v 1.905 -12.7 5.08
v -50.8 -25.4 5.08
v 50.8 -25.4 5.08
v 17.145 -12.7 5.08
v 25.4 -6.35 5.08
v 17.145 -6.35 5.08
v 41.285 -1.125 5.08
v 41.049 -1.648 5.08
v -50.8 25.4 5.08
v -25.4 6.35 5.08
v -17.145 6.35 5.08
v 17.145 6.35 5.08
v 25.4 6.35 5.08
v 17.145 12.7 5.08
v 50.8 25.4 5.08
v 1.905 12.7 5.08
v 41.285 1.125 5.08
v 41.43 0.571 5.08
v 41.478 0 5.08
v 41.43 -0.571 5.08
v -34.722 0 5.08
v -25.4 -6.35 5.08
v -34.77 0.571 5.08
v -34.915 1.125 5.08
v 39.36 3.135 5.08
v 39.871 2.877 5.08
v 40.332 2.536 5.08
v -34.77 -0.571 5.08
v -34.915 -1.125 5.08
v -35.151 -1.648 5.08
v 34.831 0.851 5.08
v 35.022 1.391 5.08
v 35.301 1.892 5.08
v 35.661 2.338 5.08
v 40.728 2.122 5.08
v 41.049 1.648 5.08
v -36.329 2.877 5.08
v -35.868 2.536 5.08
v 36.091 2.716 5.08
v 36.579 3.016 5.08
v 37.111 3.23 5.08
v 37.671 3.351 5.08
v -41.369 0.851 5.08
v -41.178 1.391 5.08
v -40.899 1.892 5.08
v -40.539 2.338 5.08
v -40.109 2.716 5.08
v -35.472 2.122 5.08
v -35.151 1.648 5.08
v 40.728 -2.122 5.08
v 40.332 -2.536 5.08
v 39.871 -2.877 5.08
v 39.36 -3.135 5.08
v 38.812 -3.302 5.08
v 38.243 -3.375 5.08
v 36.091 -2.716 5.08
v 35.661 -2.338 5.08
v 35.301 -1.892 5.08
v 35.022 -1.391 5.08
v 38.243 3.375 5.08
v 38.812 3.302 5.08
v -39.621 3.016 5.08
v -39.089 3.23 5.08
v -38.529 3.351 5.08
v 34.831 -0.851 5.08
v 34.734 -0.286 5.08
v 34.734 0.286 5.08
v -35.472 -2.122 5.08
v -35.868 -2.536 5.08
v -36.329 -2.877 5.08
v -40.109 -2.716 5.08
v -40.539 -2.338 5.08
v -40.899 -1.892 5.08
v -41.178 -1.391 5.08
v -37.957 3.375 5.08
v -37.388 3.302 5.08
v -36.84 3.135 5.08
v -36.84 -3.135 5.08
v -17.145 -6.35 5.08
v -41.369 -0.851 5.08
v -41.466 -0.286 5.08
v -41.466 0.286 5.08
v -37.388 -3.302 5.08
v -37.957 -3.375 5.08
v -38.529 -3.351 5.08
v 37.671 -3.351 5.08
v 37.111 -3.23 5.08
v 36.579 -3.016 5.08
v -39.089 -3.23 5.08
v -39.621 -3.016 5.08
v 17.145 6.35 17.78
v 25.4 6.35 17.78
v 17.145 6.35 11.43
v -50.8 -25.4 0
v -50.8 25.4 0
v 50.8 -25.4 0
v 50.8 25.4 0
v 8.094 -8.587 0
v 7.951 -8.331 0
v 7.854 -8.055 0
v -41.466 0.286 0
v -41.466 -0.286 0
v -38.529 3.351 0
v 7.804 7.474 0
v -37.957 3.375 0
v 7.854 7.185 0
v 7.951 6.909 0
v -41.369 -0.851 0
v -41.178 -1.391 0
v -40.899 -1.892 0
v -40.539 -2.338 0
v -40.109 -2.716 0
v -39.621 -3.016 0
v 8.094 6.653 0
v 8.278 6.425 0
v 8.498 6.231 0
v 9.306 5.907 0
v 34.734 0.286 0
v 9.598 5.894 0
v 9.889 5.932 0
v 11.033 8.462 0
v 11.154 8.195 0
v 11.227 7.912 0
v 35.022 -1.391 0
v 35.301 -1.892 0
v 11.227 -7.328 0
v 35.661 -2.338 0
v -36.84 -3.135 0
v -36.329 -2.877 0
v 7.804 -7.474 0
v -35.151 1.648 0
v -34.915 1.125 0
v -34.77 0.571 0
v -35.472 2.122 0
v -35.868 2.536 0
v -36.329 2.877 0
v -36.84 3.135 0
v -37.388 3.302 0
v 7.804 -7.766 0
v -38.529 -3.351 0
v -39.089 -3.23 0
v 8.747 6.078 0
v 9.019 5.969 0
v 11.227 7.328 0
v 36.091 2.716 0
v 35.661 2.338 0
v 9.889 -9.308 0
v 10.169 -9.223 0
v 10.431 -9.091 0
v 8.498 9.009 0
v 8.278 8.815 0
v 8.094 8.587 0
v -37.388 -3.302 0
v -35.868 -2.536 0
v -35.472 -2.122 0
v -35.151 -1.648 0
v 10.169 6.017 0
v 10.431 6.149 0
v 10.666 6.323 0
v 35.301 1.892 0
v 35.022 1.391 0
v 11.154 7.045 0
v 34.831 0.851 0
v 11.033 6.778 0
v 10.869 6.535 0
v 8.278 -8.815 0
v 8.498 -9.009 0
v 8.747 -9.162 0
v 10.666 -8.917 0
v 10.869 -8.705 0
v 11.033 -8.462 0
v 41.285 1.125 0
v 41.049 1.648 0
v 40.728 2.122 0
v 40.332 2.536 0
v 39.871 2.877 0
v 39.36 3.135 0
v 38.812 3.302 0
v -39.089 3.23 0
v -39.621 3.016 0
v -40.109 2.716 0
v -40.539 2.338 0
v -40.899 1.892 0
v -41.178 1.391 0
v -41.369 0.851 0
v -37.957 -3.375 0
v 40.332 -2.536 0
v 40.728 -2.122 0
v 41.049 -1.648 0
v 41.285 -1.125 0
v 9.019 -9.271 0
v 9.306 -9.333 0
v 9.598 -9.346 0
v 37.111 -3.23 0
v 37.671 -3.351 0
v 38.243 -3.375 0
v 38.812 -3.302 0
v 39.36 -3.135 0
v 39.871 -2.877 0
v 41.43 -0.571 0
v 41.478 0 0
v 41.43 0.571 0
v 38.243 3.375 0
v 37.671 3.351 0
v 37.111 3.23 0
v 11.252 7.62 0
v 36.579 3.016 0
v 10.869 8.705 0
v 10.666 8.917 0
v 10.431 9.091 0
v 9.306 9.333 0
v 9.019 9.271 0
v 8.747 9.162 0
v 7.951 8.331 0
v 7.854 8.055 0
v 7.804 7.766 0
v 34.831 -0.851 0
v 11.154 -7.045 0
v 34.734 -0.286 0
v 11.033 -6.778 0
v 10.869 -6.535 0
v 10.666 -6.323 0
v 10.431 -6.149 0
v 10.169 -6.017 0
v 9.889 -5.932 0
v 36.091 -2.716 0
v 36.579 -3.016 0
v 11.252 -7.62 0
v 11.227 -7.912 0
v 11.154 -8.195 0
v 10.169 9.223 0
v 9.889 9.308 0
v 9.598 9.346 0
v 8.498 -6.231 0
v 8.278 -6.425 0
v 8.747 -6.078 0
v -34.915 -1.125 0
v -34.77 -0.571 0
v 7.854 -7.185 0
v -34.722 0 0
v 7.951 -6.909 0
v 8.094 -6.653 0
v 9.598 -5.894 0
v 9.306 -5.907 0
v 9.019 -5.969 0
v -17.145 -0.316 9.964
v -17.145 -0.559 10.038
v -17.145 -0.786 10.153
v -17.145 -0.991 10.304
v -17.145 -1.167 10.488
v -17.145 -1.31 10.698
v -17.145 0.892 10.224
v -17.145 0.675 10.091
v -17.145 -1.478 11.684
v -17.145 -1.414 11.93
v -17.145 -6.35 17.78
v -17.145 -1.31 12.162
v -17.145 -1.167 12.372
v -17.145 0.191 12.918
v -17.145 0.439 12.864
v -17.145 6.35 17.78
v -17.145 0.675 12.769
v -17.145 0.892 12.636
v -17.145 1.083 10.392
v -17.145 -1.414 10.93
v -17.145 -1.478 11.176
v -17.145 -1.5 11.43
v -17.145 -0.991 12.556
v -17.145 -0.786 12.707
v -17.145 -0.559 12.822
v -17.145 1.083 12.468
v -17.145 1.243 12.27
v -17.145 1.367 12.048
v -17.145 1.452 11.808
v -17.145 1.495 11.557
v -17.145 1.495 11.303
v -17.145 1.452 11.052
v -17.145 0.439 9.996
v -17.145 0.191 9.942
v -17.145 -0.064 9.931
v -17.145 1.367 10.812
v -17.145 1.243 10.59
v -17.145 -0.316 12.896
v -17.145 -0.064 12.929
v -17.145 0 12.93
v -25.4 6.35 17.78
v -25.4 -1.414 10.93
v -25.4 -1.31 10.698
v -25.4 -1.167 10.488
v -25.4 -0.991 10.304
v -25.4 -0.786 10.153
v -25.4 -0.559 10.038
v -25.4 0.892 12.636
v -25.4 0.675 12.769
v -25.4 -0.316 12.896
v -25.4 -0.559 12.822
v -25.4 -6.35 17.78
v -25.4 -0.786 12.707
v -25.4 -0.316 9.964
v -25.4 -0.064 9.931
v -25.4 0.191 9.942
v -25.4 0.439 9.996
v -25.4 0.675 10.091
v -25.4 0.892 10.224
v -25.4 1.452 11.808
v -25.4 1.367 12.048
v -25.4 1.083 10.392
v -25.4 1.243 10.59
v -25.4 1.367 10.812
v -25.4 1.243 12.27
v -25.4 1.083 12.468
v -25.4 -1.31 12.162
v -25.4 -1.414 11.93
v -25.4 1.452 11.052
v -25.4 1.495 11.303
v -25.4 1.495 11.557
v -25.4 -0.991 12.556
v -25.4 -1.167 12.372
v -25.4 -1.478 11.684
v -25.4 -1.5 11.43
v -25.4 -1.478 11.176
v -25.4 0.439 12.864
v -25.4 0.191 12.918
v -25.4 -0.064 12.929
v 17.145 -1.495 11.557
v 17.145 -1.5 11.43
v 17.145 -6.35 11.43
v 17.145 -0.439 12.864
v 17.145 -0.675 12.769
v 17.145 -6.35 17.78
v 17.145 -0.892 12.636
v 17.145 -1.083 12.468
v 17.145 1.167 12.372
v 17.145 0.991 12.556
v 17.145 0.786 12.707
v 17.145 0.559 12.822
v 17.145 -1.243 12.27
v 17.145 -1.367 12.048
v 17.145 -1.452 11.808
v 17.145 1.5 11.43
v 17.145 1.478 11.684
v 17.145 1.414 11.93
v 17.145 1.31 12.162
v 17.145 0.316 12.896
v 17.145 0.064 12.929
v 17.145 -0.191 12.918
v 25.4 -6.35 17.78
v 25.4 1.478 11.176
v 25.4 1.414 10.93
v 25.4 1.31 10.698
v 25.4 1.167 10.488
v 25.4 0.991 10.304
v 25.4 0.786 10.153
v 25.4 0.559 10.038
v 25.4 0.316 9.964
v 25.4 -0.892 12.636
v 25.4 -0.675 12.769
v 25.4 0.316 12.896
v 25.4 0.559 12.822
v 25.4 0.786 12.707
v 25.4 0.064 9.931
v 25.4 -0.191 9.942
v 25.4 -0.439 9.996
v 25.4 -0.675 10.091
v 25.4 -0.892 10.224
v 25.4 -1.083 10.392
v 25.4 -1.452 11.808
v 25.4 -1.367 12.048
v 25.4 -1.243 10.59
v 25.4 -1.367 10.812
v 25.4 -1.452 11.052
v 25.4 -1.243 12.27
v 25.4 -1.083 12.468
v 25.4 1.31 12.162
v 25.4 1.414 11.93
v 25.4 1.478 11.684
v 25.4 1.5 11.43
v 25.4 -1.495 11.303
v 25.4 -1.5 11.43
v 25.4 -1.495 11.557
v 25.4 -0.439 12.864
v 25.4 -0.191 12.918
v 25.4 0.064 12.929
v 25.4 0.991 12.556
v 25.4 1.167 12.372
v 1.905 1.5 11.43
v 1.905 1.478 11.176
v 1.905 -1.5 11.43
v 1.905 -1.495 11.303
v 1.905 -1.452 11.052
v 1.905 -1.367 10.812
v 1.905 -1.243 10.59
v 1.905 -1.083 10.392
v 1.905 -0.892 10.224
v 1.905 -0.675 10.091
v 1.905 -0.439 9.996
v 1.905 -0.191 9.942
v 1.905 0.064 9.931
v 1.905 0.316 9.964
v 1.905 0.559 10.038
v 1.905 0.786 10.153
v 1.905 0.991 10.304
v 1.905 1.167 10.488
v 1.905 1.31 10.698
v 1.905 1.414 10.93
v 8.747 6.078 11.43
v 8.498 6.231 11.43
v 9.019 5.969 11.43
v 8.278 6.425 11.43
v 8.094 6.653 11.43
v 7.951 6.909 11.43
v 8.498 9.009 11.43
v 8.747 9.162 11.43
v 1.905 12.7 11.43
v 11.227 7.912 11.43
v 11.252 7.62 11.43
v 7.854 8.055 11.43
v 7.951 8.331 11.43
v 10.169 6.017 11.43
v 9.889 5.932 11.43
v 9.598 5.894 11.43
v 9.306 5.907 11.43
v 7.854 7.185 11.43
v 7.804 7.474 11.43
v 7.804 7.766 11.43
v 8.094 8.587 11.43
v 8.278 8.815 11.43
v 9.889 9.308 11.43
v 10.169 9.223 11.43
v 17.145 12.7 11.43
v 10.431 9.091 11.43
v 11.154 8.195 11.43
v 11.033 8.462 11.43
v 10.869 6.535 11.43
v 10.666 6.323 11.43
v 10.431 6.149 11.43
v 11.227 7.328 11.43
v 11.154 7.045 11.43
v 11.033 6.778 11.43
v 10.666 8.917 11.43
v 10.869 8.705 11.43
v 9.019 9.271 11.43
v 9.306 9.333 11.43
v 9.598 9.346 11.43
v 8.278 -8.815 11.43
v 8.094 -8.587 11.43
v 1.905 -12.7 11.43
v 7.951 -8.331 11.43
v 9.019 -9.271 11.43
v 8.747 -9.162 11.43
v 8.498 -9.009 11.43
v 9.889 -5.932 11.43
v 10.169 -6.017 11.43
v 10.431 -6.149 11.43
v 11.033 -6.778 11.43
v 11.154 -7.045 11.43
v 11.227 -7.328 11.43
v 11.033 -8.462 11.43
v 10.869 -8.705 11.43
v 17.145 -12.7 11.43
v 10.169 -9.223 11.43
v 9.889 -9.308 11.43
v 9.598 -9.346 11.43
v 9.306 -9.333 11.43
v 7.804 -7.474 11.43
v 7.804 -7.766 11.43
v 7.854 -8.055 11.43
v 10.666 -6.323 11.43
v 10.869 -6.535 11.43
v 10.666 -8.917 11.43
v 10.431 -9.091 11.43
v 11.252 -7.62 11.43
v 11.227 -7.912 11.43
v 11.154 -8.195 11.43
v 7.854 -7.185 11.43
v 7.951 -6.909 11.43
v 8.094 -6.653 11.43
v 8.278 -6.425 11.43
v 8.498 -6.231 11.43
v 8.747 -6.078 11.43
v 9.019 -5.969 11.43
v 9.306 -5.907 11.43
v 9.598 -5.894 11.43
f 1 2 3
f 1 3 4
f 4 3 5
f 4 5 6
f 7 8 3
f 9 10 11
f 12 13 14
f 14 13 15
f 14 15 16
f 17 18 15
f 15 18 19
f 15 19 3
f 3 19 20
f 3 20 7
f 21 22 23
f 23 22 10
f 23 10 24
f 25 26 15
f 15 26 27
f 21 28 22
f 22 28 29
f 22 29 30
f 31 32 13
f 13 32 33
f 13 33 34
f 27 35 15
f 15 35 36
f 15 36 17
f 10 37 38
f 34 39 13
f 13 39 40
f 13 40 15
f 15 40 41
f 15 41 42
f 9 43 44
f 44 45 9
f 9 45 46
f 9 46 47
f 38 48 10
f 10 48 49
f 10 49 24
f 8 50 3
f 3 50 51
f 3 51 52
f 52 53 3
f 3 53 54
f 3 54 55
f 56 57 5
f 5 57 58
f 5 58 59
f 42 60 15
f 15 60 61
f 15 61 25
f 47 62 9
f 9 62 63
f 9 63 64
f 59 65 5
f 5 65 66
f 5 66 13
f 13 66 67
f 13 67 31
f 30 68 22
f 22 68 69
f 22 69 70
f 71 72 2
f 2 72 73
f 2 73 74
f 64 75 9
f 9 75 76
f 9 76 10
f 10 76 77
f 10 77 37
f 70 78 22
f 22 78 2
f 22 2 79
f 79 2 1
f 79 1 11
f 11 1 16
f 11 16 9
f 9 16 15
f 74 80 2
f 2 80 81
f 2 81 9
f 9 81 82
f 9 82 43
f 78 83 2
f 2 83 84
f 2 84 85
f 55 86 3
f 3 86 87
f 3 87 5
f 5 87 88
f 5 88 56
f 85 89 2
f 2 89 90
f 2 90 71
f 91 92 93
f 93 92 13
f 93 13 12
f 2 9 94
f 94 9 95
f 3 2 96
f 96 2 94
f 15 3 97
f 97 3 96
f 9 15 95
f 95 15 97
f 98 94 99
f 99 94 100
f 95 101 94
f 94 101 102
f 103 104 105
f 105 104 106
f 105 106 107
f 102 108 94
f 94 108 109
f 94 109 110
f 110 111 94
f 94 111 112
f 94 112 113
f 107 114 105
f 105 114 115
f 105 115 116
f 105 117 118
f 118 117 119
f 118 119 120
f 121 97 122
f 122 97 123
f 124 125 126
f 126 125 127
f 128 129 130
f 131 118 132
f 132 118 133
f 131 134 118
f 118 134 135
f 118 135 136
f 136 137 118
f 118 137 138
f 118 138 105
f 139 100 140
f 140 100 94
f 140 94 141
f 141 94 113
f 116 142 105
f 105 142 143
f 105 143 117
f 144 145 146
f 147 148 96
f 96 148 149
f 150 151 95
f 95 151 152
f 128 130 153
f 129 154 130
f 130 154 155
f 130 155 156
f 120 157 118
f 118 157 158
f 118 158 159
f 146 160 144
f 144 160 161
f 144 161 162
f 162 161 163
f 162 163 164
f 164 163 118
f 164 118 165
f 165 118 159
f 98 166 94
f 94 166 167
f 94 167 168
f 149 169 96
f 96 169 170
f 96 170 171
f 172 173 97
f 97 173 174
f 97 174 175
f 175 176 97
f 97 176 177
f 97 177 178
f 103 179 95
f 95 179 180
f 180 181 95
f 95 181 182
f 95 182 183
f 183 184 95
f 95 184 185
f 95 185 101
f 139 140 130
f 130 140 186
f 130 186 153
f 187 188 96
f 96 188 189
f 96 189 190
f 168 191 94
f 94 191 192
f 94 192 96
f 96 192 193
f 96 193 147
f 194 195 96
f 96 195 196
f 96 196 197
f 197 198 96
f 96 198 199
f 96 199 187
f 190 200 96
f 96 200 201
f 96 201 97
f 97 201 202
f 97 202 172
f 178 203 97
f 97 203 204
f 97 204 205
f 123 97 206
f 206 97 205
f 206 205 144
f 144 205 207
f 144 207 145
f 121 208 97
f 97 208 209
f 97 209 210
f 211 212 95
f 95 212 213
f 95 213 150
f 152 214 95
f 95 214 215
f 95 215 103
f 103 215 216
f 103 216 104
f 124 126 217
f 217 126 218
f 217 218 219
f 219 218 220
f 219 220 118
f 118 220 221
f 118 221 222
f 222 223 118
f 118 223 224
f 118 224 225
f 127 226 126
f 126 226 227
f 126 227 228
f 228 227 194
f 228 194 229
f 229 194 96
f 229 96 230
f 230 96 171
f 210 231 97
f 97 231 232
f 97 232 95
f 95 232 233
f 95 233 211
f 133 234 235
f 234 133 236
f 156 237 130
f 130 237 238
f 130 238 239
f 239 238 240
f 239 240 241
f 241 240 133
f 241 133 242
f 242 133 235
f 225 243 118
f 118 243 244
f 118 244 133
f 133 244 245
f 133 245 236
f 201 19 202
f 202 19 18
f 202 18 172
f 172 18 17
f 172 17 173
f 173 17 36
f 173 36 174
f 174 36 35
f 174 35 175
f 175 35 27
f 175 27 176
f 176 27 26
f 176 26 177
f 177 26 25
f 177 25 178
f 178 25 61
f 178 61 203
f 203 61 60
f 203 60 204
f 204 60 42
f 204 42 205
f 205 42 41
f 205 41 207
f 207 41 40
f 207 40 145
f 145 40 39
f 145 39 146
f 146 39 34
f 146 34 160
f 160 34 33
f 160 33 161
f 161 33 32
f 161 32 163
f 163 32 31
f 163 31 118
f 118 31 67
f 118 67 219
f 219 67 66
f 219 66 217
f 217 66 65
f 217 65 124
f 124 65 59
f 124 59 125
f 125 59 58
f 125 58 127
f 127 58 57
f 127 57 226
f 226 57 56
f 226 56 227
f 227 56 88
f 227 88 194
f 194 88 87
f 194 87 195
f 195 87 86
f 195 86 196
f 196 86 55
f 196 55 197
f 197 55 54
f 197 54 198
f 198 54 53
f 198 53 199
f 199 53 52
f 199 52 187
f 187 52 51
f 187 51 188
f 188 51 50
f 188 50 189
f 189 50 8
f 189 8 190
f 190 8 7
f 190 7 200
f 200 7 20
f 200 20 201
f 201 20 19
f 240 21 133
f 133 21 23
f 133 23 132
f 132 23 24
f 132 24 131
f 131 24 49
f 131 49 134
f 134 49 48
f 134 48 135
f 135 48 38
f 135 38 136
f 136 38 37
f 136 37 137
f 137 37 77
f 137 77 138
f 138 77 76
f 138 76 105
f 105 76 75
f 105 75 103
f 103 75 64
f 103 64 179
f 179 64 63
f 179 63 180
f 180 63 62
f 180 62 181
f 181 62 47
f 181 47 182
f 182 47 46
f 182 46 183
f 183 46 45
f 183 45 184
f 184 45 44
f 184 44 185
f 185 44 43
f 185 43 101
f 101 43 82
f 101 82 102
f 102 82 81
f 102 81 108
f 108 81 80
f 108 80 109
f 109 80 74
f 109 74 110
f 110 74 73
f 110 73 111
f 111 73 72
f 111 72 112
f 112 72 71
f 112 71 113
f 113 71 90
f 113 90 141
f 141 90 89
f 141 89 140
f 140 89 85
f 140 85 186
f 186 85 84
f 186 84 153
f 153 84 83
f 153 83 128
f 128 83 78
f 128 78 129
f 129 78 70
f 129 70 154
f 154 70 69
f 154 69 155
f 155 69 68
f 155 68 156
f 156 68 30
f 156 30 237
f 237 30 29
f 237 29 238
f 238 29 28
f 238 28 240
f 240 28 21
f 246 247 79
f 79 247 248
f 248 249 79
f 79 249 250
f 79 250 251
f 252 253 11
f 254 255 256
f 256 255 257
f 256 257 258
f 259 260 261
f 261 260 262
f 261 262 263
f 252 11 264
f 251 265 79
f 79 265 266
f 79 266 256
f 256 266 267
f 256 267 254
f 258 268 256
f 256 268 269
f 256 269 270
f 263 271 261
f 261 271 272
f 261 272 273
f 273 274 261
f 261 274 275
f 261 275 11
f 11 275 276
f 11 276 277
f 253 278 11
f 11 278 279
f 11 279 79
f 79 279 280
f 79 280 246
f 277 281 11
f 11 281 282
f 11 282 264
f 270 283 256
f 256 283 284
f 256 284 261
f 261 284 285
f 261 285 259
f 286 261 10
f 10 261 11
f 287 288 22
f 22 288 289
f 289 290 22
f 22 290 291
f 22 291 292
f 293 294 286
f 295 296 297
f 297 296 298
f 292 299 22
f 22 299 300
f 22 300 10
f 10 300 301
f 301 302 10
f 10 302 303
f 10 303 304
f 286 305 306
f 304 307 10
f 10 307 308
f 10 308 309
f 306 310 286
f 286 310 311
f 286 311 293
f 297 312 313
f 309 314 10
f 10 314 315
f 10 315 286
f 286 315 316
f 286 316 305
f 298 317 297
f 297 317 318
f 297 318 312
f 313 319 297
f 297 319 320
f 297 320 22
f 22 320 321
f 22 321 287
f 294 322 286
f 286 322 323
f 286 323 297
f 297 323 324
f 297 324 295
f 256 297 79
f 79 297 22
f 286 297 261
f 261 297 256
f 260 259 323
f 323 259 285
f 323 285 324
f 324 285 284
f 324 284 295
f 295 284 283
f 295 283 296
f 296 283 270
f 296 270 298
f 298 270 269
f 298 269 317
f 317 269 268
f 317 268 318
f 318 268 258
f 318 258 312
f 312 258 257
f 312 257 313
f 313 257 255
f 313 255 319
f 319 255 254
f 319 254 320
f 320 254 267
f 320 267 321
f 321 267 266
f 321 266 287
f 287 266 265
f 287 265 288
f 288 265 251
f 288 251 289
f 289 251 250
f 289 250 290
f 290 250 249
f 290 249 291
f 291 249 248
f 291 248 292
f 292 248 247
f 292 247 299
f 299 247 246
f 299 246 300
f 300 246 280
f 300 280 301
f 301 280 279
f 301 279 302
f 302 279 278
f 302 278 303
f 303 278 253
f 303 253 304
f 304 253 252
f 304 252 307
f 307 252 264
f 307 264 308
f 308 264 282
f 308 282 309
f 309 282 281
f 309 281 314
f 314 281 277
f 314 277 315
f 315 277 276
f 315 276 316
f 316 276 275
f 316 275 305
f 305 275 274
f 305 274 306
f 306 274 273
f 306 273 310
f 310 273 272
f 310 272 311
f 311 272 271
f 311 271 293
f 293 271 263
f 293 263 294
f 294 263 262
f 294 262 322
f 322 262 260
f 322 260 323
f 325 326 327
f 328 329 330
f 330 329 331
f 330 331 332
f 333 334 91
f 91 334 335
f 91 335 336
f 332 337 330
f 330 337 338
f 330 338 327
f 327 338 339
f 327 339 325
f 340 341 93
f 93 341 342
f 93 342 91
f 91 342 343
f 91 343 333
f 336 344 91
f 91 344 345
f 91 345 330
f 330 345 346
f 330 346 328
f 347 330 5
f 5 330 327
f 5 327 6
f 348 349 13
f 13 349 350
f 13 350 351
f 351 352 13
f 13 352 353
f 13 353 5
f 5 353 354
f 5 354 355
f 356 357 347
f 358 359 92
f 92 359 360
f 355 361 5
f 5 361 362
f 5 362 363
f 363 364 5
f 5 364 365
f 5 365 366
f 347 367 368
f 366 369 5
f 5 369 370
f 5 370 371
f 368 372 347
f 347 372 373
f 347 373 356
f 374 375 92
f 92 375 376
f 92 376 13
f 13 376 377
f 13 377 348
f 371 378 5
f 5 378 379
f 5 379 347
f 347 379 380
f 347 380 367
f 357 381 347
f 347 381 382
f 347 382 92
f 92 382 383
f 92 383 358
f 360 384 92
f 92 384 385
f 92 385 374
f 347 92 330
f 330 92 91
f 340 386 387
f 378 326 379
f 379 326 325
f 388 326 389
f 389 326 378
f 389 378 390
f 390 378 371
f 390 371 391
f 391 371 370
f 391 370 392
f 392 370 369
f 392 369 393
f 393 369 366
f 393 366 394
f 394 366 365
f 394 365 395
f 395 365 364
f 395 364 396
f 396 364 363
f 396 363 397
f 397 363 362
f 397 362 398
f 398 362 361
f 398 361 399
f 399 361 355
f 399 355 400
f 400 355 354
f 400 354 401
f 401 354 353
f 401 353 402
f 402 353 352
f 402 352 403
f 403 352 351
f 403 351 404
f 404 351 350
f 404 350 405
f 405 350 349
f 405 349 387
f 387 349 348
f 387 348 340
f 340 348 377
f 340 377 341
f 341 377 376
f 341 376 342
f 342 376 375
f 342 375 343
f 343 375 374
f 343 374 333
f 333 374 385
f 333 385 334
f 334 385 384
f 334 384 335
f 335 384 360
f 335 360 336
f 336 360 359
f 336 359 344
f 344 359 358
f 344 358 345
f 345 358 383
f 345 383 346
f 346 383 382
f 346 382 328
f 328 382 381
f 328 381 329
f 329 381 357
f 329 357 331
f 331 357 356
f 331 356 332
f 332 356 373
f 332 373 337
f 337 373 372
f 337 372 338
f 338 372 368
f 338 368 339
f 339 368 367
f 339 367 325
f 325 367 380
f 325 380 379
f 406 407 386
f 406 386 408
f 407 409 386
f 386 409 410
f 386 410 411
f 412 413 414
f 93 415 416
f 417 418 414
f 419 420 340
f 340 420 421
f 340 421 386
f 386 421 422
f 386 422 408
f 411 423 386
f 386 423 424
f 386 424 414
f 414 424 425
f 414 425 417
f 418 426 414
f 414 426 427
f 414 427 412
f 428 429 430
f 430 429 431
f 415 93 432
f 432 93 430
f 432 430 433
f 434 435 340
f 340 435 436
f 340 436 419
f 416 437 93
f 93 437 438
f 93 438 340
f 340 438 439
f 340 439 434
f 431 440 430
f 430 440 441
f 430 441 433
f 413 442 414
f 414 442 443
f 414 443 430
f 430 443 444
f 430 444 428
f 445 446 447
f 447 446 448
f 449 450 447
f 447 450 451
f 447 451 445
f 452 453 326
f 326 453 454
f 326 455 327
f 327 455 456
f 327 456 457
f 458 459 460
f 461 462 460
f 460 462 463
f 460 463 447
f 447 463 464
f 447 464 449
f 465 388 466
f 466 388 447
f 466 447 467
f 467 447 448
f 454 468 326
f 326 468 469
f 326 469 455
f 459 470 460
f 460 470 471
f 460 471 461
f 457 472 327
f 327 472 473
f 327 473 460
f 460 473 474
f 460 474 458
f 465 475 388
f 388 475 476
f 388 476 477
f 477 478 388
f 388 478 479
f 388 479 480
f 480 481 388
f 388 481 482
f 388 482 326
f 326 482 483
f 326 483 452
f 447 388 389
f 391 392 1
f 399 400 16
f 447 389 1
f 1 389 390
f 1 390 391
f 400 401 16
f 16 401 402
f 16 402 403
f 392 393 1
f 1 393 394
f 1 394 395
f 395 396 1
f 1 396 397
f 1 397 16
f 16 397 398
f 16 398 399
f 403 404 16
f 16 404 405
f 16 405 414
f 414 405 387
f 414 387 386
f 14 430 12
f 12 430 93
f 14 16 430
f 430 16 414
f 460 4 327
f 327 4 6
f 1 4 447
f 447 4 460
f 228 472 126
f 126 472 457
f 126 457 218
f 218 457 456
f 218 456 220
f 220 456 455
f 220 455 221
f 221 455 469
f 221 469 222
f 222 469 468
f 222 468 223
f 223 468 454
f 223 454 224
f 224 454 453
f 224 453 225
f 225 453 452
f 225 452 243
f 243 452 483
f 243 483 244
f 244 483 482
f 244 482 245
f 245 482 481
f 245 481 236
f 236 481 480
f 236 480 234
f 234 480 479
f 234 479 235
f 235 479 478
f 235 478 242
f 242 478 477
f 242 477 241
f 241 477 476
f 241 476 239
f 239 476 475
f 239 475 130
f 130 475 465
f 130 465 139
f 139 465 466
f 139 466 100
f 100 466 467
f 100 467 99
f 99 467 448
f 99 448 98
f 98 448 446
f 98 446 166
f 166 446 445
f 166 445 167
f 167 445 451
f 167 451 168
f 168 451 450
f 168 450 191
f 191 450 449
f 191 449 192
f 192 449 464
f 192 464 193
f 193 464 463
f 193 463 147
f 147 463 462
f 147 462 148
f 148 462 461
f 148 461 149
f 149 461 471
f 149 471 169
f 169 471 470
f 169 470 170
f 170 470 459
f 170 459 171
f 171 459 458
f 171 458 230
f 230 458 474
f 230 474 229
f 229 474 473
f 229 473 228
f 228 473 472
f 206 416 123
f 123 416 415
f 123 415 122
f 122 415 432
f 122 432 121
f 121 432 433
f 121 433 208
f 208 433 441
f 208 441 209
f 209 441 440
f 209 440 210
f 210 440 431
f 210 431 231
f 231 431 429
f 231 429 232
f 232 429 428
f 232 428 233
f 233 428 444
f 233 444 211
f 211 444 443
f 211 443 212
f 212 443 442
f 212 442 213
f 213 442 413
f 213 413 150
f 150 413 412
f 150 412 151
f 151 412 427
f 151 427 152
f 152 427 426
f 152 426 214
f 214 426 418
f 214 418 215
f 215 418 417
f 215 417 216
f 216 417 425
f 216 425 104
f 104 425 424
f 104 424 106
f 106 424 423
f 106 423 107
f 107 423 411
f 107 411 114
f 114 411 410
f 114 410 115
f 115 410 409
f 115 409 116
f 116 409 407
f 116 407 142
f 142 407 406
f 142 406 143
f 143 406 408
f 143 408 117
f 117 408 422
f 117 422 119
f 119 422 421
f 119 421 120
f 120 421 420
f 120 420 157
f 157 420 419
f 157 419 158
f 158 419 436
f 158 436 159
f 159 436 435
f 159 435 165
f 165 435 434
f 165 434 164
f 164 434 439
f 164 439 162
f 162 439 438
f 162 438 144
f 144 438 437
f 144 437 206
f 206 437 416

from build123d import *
from build123d.topology import SkipClean

# Parameters (mm, degrees)
SKETCH1_W                   = 101.6
SKETCH1_H                   = 50.8
BOSS_EXTRUDE1_DEPTH         = 5.08
H_0_266_DIAMETER_HOLE1_D    = 6.7564
SKETCH5_W                   = 8.255
SKETCH5_H                   = 12.7
BOSS_EXTRUDE2_DEPTH         = 12.7
SKETCH6_R                   = 1.5
CUT_EXTRUDE1_DEPTH          = 12.7
BOSS_EXTRUDE3_DEPTH         = 15.24
SKETCH9_W                   = 15.24
SKETCH9_H                   = 6.35
BOSS_EXTRUDE4_DEPTH         = 6.35
F_29_0_136_DIAMETER_HOLE1_D = 3.4544


with BuildPart() as part:
    # Sketch1 → Boss-Extrude1 (new body)
    with BuildSketch(Plane.XY):
        Rectangle(SKETCH1_W, SKETCH1_H)
    extrude(amount=BOSS_EXTRUDE1_DEPTH)

    # H _0.266_ Diameter Hole1 (through all)
    with Locations(Plane.XY.offset(5.08)):
        with Locations((38.1, 0), (-38.1, 0)):
            Hole(H_0_266_DIAMETER_HOLE1_D / 2)

    # Sketch5 → Boss-Extrude2 (add)
    with BuildSketch(Plane.XY.offset(5.08)):
        with Locations((-21.2725, 0)):
            Rectangle(SKETCH5_W, SKETCH5_H)
    boss_extrude2 = extrude(amount=BOSS_EXTRUDE2_DEPTH)

    # Sketch6 → Cut-Extrude1 (cut)
    with BuildSketch(Plane.ZY.offset(25.4)):
        with Locations((11.43, 0)):
            Circle(SKETCH6_R)
    cut_extrude1 = extrude(amount=-CUT_EXTRUDE1_DEPTH, mode=Mode.SUBTRACT)

    # Mirror1: Boss-Extrude2, Cut-Extrude1 across plane
    add(boss_extrude2.mirror(Plane(origin=(0, 0, 0), x_dir=(0, 0, 1), z_dir=(1, 0, 0))))
    add(cut_extrude1.mirror(Plane(origin=(0, 0, 0), x_dir=(0, 0, 1), z_dir=(1, 0, 0))), mode=Mode.SUBTRACT)

    # Sketch8 → Boss-Extrude3 (add)
    with SkipClean():  # the faces are left unmerged after this step: merging them gives an invalid solid
        with BuildSketch(Plane.ZY.offset(-17.145)):
            with BuildLine():
                Line((11.43, 6.35), (5.08, 6.35))
                Line((5.08, 6.35), (5.08, -6.35))
                Line((5.08, -6.35), (11.43, -6.35))
                Line((11.43, -6.35), (11.43, -1.5))
                ThreePointArc((11.43, -1.5), (9.93, 0), (11.43, 1.5))
                Line((11.43, 1.5), (11.43, 6.35))
            make_face()
        extrude(amount=BOSS_EXTRUDE3_DEPTH)

    # Sketch9 → Boss-Extrude4 (add)
    with SkipClean():  # the faces are left unmerged after this step: merging them gives an invalid solid
        with BuildSketch(Plane(origin=(0, 6.35, 0), x_dir=(1, 0, 0), z_dir=(0, 1, 0))):
            with Locations((9.525, -8.255)):
                Rectangle(SKETCH9_W, SKETCH9_H)
        boss_extrude4 = extrude(amount=BOSS_EXTRUDE4_DEPTH)

    # Mirror2: Boss-Extrude4 across plane
    with SkipClean():  # the faces are left unmerged after this step: merging them gives an invalid solid
        add(boss_extrude4.mirror(Plane.ZX))

    # 29 _0.136_ Diameter Hole1 (through all)
    with Locations(Plane.XY.offset(11.43)):
        with Locations((9.525, -7.62), (9.525, 7.62)):
            Hole(F_29_0_136_DIAMETER_HOLE1_D / 2)


solid = part.part
